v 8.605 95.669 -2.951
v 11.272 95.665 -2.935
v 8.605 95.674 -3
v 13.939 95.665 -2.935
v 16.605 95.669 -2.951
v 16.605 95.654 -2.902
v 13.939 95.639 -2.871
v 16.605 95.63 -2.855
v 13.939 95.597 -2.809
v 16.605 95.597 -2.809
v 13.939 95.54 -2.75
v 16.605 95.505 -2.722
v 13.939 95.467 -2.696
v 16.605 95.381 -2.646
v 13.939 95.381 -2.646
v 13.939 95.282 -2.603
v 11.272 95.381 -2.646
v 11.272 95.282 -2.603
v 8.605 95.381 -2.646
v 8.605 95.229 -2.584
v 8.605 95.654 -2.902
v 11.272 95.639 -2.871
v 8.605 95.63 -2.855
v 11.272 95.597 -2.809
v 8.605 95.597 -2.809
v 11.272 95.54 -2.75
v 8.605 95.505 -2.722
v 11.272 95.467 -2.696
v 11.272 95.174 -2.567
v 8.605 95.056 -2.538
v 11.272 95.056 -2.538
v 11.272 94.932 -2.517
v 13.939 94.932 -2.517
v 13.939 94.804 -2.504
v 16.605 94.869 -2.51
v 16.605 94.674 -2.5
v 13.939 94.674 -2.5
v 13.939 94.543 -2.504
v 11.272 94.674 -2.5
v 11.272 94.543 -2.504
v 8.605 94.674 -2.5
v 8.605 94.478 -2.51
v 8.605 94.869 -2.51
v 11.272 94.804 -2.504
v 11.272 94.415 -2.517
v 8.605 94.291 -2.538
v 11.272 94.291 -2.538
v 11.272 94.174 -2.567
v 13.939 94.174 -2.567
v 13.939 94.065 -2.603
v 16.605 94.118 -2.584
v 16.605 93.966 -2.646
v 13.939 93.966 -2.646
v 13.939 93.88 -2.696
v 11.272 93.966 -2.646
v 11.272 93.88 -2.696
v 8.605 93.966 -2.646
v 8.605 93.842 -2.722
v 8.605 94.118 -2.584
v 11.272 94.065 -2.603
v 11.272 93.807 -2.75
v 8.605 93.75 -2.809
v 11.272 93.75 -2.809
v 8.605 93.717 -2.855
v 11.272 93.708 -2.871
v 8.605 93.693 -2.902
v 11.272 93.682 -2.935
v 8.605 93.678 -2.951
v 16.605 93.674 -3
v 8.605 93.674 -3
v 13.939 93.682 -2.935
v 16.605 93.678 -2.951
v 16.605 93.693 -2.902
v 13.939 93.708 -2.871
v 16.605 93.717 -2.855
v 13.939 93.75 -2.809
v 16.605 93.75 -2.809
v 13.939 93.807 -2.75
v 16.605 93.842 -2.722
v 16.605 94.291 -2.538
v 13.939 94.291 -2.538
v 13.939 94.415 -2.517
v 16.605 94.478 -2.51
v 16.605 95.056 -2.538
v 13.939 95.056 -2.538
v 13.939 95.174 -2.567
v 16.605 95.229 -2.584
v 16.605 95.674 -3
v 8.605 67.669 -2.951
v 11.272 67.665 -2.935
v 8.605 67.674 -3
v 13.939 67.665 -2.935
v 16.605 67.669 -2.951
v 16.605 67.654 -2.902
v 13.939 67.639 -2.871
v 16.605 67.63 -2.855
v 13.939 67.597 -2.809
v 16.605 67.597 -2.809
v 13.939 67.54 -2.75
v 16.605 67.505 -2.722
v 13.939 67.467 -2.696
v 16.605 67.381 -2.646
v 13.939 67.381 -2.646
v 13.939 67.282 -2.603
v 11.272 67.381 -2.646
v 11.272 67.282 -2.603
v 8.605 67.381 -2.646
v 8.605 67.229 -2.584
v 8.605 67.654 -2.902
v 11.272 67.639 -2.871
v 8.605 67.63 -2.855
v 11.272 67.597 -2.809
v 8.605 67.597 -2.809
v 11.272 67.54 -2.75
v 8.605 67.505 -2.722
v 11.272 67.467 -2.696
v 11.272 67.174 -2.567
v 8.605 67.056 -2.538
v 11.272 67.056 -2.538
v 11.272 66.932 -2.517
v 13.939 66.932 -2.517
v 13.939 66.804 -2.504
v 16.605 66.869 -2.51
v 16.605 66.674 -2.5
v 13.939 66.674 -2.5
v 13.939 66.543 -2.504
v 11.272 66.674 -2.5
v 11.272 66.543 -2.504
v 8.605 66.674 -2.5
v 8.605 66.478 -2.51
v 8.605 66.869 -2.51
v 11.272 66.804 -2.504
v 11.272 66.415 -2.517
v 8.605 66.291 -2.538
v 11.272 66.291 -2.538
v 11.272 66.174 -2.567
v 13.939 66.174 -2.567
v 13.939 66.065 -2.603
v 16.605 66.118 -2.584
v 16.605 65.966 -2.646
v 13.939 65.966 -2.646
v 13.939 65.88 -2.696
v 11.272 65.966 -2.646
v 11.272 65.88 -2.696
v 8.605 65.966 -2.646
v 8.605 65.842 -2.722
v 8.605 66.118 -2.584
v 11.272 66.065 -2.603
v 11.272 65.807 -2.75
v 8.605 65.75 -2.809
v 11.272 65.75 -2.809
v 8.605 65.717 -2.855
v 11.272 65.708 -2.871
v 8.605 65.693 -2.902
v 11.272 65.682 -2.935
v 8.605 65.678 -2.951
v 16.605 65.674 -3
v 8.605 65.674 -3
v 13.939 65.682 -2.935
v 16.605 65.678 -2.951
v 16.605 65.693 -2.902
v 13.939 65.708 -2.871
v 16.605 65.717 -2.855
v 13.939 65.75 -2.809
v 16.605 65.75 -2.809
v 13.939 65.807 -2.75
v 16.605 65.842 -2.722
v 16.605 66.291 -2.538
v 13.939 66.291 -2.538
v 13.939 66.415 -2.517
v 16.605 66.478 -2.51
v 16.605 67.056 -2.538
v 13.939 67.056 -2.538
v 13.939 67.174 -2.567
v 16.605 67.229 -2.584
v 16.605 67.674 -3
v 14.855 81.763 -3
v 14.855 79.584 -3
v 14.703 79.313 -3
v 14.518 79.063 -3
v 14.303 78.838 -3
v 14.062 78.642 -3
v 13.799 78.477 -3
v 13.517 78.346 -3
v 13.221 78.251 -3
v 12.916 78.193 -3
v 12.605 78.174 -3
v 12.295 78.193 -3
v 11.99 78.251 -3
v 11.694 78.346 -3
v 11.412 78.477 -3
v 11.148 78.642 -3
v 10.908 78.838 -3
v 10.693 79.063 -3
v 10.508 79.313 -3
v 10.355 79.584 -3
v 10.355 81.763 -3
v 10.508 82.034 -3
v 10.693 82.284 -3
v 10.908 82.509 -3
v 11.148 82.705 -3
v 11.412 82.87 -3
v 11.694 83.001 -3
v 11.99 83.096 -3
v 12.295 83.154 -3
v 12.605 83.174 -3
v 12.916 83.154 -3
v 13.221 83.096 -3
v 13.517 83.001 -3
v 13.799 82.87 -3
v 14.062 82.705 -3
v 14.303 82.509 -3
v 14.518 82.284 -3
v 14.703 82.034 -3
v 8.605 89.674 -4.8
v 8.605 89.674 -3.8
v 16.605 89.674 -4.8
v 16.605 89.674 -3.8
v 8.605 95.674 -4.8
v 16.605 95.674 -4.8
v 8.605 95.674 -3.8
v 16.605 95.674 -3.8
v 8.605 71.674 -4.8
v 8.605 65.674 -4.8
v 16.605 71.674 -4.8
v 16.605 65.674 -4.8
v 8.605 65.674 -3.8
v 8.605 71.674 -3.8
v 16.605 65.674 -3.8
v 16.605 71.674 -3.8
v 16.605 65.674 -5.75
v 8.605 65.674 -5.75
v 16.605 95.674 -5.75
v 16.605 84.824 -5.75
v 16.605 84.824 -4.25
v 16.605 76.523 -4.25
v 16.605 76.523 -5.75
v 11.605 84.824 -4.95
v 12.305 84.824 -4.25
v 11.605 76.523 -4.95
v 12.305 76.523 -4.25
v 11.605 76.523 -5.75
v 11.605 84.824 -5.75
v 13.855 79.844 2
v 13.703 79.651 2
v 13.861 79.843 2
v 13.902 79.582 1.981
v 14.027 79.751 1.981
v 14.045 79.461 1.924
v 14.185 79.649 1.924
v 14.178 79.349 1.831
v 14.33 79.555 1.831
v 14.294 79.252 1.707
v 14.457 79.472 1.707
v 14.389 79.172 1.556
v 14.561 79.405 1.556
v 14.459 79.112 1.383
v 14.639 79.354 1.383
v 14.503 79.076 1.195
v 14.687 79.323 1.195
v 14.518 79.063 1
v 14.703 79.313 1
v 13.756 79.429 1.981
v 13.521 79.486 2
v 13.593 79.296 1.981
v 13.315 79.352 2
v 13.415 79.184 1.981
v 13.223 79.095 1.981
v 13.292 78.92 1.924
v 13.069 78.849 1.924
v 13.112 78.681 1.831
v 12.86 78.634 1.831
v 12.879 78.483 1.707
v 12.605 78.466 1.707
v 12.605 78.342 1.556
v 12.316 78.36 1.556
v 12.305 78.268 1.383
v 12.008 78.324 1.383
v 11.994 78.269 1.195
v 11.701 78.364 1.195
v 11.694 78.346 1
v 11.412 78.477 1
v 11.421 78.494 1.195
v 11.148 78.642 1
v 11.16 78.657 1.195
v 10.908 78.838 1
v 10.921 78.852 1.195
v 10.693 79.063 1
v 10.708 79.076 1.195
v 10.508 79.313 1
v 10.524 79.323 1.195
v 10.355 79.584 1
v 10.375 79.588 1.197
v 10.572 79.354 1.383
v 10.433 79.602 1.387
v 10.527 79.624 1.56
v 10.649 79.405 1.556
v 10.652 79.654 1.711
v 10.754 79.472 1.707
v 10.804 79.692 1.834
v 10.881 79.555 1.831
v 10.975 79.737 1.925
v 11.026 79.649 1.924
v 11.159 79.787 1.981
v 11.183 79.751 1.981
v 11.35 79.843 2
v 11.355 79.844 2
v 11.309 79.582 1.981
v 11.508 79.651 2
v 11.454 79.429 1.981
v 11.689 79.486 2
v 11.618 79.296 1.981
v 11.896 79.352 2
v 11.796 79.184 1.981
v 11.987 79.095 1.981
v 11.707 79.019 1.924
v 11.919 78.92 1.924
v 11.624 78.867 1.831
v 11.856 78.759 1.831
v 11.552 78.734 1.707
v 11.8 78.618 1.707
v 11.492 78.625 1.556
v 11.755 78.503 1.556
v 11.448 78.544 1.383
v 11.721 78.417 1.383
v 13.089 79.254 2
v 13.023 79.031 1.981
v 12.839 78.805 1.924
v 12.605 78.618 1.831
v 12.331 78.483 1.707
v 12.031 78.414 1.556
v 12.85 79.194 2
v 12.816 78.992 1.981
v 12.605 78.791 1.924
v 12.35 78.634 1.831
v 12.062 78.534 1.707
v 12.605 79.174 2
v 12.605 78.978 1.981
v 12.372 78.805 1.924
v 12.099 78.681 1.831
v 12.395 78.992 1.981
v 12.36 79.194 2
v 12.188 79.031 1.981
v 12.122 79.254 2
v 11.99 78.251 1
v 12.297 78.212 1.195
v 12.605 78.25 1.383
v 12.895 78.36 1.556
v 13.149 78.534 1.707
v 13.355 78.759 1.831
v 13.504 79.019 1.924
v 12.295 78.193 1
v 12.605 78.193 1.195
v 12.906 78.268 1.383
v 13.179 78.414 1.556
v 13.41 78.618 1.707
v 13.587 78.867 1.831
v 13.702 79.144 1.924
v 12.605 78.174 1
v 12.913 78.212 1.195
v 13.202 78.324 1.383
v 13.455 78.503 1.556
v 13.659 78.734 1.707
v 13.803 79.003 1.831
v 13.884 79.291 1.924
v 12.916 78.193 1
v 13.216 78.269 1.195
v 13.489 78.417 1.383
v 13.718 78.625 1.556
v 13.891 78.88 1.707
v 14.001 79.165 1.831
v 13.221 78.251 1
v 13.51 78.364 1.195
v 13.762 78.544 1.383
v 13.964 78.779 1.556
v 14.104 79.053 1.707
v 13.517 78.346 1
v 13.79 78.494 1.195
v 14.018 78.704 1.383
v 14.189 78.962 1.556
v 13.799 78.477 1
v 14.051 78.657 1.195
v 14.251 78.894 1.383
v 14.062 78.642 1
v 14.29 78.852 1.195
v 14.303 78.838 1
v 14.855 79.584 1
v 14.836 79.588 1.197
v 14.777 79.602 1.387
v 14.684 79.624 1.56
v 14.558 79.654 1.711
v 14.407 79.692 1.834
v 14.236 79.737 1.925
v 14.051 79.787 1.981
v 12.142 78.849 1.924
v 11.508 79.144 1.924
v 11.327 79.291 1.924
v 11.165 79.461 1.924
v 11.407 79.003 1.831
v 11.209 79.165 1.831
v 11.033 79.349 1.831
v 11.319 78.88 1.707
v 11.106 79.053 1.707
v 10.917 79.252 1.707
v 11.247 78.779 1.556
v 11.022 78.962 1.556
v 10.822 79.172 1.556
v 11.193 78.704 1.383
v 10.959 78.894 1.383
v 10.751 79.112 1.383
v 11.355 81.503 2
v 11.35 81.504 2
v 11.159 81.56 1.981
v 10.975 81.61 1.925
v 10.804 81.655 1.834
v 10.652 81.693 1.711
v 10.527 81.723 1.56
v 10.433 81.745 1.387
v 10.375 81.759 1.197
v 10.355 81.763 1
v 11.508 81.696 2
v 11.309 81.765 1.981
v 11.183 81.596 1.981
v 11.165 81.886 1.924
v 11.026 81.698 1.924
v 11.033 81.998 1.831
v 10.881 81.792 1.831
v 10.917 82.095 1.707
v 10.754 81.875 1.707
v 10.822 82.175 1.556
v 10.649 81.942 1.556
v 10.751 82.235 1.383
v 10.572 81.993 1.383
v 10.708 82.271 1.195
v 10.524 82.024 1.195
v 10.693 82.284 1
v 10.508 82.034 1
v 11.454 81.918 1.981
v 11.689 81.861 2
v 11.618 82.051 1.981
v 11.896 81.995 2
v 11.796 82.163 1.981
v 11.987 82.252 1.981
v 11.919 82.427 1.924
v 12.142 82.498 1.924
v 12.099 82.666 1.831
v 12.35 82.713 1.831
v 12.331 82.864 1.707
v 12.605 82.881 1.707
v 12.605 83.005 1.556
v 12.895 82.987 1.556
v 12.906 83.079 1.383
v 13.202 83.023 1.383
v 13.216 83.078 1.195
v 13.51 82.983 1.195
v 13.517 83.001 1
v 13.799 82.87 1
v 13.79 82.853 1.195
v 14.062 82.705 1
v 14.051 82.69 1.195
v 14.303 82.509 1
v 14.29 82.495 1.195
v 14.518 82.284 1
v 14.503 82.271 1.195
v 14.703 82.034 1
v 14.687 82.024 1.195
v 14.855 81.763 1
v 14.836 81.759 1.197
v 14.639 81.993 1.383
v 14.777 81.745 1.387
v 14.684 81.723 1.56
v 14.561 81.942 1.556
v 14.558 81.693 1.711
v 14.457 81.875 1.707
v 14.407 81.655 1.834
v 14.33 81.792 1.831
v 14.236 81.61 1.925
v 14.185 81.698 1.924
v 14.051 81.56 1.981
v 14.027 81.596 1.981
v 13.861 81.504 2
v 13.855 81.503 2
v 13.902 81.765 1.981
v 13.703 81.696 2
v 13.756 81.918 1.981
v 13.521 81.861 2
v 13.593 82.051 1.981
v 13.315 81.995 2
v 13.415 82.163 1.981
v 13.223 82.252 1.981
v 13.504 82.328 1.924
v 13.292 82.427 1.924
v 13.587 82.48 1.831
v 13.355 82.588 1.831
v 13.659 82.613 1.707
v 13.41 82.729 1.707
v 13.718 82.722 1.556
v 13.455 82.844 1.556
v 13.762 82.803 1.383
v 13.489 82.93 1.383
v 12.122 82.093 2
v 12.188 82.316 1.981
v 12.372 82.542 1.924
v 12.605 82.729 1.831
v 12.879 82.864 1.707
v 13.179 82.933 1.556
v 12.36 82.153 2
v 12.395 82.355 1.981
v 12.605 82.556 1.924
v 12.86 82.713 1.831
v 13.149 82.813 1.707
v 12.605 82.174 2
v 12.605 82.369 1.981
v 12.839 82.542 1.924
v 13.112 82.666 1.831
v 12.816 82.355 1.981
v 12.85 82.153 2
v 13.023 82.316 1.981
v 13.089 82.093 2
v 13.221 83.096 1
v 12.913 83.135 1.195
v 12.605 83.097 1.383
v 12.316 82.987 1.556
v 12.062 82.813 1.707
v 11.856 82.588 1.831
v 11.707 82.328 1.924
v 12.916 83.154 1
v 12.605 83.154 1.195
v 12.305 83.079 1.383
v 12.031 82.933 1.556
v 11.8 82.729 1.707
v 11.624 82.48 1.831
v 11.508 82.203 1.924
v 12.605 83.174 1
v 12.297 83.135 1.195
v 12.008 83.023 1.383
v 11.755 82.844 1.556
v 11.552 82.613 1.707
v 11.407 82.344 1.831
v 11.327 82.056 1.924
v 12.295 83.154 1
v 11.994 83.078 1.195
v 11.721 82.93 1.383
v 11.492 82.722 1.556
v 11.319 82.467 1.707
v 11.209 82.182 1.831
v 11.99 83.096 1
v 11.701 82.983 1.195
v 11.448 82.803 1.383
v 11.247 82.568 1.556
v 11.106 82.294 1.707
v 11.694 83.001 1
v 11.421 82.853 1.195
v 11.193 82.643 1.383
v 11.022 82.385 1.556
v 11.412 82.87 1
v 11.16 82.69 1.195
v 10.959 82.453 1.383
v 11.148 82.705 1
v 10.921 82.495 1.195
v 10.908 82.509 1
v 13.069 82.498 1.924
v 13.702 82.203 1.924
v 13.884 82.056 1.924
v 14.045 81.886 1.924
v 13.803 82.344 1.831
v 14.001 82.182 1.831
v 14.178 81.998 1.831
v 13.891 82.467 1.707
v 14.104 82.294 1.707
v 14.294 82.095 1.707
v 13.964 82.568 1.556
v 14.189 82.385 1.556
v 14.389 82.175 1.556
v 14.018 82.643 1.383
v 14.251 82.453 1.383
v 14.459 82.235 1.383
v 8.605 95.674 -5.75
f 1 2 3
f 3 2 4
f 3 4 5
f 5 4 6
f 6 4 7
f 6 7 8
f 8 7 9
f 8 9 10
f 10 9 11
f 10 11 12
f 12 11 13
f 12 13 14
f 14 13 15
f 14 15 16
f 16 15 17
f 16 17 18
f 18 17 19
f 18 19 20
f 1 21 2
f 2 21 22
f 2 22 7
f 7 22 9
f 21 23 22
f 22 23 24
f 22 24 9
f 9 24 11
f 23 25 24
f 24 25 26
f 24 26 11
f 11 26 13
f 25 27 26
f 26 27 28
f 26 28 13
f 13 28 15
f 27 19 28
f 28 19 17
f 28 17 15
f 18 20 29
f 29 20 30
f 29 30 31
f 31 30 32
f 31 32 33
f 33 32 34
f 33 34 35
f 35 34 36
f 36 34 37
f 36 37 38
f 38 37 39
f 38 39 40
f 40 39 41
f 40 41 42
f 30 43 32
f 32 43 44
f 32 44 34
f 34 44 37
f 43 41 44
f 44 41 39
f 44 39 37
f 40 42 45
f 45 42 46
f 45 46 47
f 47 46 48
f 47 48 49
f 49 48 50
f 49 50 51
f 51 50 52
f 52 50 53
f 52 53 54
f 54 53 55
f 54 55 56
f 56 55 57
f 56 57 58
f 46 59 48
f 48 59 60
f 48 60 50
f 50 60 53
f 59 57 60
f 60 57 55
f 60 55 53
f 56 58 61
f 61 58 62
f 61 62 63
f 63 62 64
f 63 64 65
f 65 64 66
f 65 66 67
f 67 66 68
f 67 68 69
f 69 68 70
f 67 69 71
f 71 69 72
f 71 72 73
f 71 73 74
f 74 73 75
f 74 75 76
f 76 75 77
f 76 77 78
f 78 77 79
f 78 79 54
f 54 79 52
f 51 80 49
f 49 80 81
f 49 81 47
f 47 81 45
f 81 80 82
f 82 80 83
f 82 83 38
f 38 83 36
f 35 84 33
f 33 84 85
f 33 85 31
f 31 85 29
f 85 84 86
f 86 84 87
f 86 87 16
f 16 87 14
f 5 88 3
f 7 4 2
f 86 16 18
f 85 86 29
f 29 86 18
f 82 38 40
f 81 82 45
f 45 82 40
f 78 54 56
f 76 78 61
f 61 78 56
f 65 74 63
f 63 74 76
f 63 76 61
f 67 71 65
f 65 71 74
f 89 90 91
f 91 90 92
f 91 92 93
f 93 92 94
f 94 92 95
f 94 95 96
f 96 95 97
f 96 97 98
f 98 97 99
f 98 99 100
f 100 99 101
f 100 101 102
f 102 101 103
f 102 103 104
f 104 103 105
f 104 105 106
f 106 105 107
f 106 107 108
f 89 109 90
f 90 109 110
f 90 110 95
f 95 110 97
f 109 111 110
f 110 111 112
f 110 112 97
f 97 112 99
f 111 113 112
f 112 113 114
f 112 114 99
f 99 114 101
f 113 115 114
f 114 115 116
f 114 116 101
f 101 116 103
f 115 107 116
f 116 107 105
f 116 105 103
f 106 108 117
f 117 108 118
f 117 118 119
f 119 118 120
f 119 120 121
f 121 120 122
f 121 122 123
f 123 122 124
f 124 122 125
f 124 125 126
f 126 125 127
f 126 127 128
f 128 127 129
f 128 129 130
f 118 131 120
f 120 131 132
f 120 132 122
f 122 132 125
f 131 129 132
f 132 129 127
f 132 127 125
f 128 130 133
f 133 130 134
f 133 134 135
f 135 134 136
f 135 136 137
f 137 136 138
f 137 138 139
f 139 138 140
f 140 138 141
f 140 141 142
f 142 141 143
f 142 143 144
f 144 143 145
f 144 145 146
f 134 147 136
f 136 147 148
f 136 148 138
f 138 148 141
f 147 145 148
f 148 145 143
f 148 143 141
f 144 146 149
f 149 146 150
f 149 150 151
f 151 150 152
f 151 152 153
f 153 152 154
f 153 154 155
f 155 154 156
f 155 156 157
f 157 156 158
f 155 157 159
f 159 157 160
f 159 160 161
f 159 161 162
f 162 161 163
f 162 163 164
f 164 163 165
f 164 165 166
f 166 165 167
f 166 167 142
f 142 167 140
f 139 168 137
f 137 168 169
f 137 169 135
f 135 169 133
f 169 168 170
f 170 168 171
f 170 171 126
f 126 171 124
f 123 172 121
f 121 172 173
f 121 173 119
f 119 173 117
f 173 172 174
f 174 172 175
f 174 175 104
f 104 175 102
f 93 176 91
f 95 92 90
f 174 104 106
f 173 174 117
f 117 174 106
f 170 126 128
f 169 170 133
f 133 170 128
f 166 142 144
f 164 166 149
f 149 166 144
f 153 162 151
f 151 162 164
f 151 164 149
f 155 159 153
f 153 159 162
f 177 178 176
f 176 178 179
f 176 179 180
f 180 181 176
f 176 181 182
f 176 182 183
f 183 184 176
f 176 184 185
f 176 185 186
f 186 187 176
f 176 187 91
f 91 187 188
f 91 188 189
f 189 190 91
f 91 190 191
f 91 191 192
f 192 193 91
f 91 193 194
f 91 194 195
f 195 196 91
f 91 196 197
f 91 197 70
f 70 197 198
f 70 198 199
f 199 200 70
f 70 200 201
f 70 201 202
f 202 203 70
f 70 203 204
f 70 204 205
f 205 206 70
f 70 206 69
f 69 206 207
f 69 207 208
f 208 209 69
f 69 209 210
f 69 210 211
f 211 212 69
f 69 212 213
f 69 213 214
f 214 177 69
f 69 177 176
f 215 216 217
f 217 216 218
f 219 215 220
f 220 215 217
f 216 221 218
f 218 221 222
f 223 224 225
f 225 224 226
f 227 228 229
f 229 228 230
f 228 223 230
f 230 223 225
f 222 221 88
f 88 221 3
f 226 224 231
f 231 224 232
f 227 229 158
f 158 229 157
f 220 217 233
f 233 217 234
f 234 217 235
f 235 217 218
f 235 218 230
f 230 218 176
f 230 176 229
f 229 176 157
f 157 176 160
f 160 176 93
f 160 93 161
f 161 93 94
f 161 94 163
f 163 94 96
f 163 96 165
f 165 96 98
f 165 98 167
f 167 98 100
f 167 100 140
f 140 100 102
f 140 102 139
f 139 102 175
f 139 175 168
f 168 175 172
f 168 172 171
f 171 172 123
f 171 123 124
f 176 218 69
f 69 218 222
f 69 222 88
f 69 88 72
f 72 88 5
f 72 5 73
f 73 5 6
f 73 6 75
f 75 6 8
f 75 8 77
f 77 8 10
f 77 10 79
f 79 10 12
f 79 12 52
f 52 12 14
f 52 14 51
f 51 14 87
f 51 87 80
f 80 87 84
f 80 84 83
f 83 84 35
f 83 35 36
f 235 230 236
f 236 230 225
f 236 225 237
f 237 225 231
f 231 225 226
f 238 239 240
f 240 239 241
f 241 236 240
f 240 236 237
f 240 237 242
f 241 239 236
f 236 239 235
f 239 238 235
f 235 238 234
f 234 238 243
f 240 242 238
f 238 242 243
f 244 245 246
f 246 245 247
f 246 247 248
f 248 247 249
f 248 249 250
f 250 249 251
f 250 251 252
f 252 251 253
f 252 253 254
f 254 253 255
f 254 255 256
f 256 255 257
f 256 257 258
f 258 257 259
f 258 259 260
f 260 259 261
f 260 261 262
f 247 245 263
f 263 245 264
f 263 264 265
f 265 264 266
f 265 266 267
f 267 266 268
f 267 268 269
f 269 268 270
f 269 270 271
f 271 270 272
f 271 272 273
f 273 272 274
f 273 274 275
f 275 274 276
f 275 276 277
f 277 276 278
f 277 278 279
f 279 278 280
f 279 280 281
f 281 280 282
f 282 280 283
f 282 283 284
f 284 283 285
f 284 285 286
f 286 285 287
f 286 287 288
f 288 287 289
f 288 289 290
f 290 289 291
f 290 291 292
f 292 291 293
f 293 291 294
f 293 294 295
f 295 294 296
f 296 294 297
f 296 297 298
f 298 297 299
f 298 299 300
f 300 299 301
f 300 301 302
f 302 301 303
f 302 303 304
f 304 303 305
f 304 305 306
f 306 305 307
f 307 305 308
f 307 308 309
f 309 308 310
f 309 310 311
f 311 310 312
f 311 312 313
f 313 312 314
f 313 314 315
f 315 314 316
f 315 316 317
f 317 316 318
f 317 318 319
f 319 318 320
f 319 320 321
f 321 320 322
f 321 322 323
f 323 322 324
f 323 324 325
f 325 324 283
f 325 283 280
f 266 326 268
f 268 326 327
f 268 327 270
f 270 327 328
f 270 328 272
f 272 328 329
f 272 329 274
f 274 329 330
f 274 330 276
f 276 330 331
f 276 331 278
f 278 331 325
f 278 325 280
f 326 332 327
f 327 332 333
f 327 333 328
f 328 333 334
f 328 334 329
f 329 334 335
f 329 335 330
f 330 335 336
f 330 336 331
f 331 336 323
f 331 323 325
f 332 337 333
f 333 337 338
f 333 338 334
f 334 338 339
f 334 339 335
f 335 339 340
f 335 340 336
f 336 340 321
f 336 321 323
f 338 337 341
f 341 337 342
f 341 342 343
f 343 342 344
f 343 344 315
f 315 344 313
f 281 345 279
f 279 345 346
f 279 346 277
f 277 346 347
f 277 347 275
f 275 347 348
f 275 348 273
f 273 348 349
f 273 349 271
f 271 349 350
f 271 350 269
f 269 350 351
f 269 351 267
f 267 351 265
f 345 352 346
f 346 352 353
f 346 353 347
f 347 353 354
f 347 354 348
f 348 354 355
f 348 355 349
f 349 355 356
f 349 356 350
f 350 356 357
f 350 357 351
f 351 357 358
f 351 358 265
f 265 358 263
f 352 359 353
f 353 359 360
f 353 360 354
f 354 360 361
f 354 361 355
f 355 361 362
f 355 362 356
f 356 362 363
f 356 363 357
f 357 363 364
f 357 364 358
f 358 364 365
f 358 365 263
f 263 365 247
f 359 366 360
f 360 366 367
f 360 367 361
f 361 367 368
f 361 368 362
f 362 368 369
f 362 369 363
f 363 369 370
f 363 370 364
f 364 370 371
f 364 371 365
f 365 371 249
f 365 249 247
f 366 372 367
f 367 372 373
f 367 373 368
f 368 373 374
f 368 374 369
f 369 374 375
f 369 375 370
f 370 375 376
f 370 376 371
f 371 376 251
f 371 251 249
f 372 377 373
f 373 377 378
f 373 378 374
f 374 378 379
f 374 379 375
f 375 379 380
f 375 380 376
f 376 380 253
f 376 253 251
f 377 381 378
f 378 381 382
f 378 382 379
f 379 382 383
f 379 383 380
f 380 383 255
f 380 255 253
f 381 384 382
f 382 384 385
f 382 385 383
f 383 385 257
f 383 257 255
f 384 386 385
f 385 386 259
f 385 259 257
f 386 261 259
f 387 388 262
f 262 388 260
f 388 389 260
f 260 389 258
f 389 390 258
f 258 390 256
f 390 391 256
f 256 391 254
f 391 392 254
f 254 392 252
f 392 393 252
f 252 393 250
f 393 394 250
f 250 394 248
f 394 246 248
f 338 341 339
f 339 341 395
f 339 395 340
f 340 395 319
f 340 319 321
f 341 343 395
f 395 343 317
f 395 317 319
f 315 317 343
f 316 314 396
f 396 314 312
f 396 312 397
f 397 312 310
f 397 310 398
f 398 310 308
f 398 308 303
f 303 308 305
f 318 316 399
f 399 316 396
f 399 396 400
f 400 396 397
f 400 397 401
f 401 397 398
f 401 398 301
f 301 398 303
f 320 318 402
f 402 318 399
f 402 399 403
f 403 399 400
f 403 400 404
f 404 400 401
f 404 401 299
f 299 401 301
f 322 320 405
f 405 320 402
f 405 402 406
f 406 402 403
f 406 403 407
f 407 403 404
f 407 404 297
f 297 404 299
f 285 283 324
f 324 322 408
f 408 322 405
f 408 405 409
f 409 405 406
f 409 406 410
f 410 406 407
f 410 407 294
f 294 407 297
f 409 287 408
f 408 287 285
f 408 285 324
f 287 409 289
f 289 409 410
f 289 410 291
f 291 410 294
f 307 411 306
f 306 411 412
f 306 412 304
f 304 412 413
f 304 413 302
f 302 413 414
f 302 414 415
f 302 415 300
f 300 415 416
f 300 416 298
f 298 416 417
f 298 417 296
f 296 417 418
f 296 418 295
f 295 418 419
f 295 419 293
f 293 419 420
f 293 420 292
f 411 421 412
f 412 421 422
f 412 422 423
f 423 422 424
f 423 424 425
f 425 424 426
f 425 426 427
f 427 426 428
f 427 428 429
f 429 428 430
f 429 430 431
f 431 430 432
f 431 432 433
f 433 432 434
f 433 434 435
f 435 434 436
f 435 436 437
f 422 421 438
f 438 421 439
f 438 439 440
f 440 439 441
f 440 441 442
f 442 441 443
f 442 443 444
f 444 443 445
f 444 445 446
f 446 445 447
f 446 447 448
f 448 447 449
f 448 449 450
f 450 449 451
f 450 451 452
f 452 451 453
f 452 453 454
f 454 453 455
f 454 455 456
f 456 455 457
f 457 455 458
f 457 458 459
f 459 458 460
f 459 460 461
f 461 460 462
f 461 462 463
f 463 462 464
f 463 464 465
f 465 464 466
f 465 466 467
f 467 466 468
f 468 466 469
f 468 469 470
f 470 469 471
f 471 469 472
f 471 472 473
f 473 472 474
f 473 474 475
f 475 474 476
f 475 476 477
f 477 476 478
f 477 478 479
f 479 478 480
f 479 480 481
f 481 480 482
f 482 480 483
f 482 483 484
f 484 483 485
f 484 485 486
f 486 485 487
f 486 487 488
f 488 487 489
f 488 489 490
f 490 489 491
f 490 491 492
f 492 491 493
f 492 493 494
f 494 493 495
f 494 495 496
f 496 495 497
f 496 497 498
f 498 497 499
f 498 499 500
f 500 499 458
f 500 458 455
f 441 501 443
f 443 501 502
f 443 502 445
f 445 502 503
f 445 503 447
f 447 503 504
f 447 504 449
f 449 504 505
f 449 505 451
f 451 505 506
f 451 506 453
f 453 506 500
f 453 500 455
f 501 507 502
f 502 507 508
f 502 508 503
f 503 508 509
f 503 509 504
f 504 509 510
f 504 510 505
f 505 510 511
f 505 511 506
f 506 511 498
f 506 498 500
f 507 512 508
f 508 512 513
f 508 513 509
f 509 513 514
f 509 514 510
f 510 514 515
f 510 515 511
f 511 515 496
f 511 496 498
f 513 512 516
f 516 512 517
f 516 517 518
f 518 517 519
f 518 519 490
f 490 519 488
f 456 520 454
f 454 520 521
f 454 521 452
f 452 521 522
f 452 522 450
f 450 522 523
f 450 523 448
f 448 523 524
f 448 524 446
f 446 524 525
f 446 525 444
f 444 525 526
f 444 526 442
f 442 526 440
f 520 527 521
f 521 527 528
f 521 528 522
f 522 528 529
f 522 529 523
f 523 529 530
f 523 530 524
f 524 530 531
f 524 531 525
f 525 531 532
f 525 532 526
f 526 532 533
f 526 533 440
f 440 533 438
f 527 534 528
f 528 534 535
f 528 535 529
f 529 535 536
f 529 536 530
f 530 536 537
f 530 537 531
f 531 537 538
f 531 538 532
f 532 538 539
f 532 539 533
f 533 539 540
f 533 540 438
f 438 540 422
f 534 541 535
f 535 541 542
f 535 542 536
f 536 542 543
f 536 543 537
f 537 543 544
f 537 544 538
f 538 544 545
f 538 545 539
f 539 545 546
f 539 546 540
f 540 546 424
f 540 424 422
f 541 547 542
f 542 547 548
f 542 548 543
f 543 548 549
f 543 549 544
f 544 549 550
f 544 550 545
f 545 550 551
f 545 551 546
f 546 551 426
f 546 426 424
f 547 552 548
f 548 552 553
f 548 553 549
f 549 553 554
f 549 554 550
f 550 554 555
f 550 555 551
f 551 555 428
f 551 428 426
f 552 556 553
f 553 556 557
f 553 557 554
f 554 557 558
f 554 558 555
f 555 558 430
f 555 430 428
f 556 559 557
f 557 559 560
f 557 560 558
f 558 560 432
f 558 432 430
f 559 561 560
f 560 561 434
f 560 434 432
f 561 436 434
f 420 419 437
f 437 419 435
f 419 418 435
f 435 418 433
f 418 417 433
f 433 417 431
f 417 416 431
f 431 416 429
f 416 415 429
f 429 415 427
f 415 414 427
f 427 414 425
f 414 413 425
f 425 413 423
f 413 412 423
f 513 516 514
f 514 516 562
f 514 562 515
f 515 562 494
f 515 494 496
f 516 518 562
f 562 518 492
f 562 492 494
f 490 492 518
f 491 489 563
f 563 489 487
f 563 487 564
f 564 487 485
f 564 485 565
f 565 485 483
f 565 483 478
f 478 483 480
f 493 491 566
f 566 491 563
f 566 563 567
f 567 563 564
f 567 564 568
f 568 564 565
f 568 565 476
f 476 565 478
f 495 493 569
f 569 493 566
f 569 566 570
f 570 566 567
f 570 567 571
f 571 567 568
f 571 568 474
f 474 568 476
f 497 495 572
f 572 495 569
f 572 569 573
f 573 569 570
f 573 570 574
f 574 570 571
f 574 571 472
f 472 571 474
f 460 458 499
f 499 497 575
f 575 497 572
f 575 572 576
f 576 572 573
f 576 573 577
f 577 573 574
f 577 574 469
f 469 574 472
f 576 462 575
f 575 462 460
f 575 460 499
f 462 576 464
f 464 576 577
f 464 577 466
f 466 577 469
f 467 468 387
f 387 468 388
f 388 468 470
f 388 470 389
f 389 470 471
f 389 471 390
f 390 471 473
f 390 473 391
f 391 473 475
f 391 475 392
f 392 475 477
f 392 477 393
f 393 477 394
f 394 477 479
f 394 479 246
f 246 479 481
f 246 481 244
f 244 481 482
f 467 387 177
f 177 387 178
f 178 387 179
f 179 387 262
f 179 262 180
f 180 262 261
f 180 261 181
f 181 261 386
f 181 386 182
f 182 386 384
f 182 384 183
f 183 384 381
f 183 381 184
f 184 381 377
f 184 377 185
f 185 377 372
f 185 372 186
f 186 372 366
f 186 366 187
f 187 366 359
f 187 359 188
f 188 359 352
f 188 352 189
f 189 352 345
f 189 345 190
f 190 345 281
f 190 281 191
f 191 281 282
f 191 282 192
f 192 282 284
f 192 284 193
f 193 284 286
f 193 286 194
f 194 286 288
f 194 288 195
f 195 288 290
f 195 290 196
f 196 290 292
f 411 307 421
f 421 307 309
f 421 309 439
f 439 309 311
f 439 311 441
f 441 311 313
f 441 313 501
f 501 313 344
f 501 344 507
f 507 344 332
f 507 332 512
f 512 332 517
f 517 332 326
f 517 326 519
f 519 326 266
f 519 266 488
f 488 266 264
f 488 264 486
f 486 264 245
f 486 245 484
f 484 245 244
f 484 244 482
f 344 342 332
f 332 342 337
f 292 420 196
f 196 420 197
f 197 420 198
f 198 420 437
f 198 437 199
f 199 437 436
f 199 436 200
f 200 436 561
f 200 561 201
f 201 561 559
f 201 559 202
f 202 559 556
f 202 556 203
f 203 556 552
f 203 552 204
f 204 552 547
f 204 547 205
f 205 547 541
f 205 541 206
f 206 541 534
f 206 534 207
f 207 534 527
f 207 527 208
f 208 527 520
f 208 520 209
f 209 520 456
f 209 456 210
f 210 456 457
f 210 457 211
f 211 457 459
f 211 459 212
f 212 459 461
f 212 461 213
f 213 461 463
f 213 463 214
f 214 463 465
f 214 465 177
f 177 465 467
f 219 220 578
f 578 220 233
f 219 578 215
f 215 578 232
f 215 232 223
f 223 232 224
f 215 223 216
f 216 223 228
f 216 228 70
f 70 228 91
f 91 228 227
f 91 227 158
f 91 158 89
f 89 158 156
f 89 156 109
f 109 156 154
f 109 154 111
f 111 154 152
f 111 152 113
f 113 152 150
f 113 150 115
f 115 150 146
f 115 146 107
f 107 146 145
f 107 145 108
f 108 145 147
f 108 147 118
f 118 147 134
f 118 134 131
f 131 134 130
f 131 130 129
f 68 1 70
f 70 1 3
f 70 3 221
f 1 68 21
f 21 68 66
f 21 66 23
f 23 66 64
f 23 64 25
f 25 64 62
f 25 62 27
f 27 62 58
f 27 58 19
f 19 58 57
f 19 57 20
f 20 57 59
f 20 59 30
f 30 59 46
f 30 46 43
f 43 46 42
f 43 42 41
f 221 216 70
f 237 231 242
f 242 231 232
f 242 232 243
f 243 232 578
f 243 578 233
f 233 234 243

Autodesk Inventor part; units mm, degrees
ref_plane "YZ Plane" through (0, 0, 0) normal (1, 0, 0) x (0, 1, 0)
ref_plane "XZ Plane" through (0, 0, 0) normal (0, 1, 0) x (-1, 0, 0)
ref_plane "XY Plane" through (0, 0, 0) normal (0, 0, 1) x (1, 0, 0)
ref_plane "Work Plane1" through (0, 0, 0) normal (0, 0, 1) x (1, 0, 0)
sketch "Sketch1" plane through (0, 0, 0) normal (0, 0, 1) x (1, 0, 0)
  circle A0 centre (12.6053, 80.6735) radius 2.5
  point P0 (0, 0)
  dimension "d0" = 5
extrude "Extrusion1" add sketch "Sketch1" along normal blind 2 and the other way blind 3
sketch "Sketch2" plane through (12.6053, 80.6735, -3) normal (0, 0, -1) x (-1, 0, 0)
  line L0 (-4, -15) -> (4, -15)
  line L1 (4, -15) -> (4, 15)
  line L2 (4, 15) -> (-4, 15)
  line L3 (-4, 15) -> (-4, -15)
  line L4 (-4, -15) -> (4, 15)
  line L5 (-4, -15) -> (27.0483, -15) construction
  circle A0 centre (0, 0) radius 2.5 projected
  point P0 (12.6053, -80.6735)
  dimension "d5" = 8
  dimension "d6" = 30
extrude "Extrusion2" add sketch "Sketch2" along normal blind 2.75
sketch "Sketch5" plane through (12.6053, 80.6735, 2) normal (0, 0, 1) x (1, 0, 0)
  line L0 (4, 15) -> (4, -15) projected
  line L1 (-4, -15) -> (-4, 15) projected
  circle A0 centre (0, 0) radius 2.5 projected
  line L2 (-2.25, 1.0897) -> (-2.25, -1.0897)
  line L3 (2.25, 1.0897) -> (2.25, -1.0897)
  circle A1 centre (0, 0) radius 2.5 projected
  point P0 (-12.6053, -80.6735)
  point P1 (2.25, 1.0897)
  point P2 (2.25, -1.0897)
  point P3 (-2.25, -1.0897)
  point P4 (-2.25, 1.0897)
  dimension "d21" = 1.75
  dimension "d22" = 1.75
extrude "Extrusion5" cut sketch "Sketch5" against normal up to surface (5 mm away) contours A0 L3 | L2 A0
fillet "Fillet1" radius 1 4 edges at (12.6053, 83.1735, 2) (12.6053, 78.1735, 2) (10.3553, 80.6735, 2) (14.8553, 80.6735, 2)
sketch "Sketch7" plane through (16.6053, 65.6735, -3) normal (1, 0, 0) x (0, 0, -1)
  line L0 (3.95, 19.8) -> (5.45, 19.8) construction
  line L1 (1.25, 19.15) -> (1.25, 10.85)
  line L2 (0, 30) -> (2.75, 30) projected
  line L3 (0, 30) -> (0, 0) projected
  line L4 (0, 0) -> (2.75, 0) projected
  line L5 (2.75, 30) -> (2.75, 0) projected
  line L6 (0, 30) -> (2.75, 30) projected
  line L7 (1.25, 19.15) -> (2.75, 19.15)
  line L8 (2.75, 30) -> (2.75, 0) projected
  line L9 (1.25, 10.85) -> (2.75, 10.85)
  point P0 (-3, -65.6735)
  point P1 (2.75, 10.85)
  point P2 (2.75, 19.15)
  dimension "d31" = 8.3
  dimension "d52" = 1.5
  dimension "d53" = 10.85
extrude "Extrusion7" cut sketch "Sketch7" against normal blind 5 contours L7 L5 L9 L1
chamfer "Chamfer1" distance 0.7 angle 45 1 edges at (11.6053, 80.6735, -4.25)
sketch "Sketch8" plane through (16.6053, 65.6735, -3) normal (1, 0, 0) x (0, 0, -1)
  line L0 (0, 30) -> (2.75, 30) projected
  line L1 (0, 30) -> (0, 0) projected
  line L2 (0, 0) -> (2.75, 0) projected
  line L3 (0, 0) -> (2.75, 0) projected
  line L4 (0, 30) -> (2.75, 30) projected
  line L5 (0.8, 0) -> (0.8, 30)
  line L6 (0, 30) -> (0, 0) projected
  line L7 (1.8, 0) -> (1.8, 30)
  line L8 (0.8, 6) -> (1.8, 6)
  line L9 (0.8, 24) -> (1.8, 24)
  line L10 (2.75, 30) -> (2.75, 19.15) projected
  line L11 (2.75, 10.85) -> (1.25, 10.85) projected
  line L12 (1.25, 10.85) -> (1.25, 19.15) projected
  line L13 (1.25, 19.15) -> (2.75, 19.15) projected
  line L14 (2.75, 10.85) -> (2.75, 0) projected
  point P0 (-3, -65.6735)
  dimension "d38" = 0.8
  dimension "d39" = 1
  dimension "d40" = 6
  dimension "d41" = 6
  dimension "d55" = 0.95
extrude "Extrusion8" cut sketch "Sketch8" against normal up to surface (8 mm away) contours L0 L7 L9 L5 | L5 L8 L7 L2
sketch "Sketch9" plane through (16.6053, 65.6735, -3) normal (1, 0, 0) x (0, 0, -1)
  line L0 (0, 0) -> (0, 30) projected
  line L1 (0, 30) -> (0, 0) projected
  ellipse E0 centre (0, 1) end of major axis (0, 2) minor radius 0.5 (0, 2) -> (0, 0) ccw
  ellipse E1 centre (0, 29) end of major axis (0, 30) minor radius 0.5
  point P0 (-3, -65.6735)
  point P1 (0, 28)
  dimension "d48" = 0.5
  dimension "d49" = 0.5
  dimension "d50" = 1
  dimension "d51" = 1
extrude "Extrusion9" add sketch "Sketch9" against normal up to surface (8 mm away) contours E0 L0 | E1 L0 picked at (-0.1666, 28.9882)
properties part number "ON_Off_switch_3DPrint"
